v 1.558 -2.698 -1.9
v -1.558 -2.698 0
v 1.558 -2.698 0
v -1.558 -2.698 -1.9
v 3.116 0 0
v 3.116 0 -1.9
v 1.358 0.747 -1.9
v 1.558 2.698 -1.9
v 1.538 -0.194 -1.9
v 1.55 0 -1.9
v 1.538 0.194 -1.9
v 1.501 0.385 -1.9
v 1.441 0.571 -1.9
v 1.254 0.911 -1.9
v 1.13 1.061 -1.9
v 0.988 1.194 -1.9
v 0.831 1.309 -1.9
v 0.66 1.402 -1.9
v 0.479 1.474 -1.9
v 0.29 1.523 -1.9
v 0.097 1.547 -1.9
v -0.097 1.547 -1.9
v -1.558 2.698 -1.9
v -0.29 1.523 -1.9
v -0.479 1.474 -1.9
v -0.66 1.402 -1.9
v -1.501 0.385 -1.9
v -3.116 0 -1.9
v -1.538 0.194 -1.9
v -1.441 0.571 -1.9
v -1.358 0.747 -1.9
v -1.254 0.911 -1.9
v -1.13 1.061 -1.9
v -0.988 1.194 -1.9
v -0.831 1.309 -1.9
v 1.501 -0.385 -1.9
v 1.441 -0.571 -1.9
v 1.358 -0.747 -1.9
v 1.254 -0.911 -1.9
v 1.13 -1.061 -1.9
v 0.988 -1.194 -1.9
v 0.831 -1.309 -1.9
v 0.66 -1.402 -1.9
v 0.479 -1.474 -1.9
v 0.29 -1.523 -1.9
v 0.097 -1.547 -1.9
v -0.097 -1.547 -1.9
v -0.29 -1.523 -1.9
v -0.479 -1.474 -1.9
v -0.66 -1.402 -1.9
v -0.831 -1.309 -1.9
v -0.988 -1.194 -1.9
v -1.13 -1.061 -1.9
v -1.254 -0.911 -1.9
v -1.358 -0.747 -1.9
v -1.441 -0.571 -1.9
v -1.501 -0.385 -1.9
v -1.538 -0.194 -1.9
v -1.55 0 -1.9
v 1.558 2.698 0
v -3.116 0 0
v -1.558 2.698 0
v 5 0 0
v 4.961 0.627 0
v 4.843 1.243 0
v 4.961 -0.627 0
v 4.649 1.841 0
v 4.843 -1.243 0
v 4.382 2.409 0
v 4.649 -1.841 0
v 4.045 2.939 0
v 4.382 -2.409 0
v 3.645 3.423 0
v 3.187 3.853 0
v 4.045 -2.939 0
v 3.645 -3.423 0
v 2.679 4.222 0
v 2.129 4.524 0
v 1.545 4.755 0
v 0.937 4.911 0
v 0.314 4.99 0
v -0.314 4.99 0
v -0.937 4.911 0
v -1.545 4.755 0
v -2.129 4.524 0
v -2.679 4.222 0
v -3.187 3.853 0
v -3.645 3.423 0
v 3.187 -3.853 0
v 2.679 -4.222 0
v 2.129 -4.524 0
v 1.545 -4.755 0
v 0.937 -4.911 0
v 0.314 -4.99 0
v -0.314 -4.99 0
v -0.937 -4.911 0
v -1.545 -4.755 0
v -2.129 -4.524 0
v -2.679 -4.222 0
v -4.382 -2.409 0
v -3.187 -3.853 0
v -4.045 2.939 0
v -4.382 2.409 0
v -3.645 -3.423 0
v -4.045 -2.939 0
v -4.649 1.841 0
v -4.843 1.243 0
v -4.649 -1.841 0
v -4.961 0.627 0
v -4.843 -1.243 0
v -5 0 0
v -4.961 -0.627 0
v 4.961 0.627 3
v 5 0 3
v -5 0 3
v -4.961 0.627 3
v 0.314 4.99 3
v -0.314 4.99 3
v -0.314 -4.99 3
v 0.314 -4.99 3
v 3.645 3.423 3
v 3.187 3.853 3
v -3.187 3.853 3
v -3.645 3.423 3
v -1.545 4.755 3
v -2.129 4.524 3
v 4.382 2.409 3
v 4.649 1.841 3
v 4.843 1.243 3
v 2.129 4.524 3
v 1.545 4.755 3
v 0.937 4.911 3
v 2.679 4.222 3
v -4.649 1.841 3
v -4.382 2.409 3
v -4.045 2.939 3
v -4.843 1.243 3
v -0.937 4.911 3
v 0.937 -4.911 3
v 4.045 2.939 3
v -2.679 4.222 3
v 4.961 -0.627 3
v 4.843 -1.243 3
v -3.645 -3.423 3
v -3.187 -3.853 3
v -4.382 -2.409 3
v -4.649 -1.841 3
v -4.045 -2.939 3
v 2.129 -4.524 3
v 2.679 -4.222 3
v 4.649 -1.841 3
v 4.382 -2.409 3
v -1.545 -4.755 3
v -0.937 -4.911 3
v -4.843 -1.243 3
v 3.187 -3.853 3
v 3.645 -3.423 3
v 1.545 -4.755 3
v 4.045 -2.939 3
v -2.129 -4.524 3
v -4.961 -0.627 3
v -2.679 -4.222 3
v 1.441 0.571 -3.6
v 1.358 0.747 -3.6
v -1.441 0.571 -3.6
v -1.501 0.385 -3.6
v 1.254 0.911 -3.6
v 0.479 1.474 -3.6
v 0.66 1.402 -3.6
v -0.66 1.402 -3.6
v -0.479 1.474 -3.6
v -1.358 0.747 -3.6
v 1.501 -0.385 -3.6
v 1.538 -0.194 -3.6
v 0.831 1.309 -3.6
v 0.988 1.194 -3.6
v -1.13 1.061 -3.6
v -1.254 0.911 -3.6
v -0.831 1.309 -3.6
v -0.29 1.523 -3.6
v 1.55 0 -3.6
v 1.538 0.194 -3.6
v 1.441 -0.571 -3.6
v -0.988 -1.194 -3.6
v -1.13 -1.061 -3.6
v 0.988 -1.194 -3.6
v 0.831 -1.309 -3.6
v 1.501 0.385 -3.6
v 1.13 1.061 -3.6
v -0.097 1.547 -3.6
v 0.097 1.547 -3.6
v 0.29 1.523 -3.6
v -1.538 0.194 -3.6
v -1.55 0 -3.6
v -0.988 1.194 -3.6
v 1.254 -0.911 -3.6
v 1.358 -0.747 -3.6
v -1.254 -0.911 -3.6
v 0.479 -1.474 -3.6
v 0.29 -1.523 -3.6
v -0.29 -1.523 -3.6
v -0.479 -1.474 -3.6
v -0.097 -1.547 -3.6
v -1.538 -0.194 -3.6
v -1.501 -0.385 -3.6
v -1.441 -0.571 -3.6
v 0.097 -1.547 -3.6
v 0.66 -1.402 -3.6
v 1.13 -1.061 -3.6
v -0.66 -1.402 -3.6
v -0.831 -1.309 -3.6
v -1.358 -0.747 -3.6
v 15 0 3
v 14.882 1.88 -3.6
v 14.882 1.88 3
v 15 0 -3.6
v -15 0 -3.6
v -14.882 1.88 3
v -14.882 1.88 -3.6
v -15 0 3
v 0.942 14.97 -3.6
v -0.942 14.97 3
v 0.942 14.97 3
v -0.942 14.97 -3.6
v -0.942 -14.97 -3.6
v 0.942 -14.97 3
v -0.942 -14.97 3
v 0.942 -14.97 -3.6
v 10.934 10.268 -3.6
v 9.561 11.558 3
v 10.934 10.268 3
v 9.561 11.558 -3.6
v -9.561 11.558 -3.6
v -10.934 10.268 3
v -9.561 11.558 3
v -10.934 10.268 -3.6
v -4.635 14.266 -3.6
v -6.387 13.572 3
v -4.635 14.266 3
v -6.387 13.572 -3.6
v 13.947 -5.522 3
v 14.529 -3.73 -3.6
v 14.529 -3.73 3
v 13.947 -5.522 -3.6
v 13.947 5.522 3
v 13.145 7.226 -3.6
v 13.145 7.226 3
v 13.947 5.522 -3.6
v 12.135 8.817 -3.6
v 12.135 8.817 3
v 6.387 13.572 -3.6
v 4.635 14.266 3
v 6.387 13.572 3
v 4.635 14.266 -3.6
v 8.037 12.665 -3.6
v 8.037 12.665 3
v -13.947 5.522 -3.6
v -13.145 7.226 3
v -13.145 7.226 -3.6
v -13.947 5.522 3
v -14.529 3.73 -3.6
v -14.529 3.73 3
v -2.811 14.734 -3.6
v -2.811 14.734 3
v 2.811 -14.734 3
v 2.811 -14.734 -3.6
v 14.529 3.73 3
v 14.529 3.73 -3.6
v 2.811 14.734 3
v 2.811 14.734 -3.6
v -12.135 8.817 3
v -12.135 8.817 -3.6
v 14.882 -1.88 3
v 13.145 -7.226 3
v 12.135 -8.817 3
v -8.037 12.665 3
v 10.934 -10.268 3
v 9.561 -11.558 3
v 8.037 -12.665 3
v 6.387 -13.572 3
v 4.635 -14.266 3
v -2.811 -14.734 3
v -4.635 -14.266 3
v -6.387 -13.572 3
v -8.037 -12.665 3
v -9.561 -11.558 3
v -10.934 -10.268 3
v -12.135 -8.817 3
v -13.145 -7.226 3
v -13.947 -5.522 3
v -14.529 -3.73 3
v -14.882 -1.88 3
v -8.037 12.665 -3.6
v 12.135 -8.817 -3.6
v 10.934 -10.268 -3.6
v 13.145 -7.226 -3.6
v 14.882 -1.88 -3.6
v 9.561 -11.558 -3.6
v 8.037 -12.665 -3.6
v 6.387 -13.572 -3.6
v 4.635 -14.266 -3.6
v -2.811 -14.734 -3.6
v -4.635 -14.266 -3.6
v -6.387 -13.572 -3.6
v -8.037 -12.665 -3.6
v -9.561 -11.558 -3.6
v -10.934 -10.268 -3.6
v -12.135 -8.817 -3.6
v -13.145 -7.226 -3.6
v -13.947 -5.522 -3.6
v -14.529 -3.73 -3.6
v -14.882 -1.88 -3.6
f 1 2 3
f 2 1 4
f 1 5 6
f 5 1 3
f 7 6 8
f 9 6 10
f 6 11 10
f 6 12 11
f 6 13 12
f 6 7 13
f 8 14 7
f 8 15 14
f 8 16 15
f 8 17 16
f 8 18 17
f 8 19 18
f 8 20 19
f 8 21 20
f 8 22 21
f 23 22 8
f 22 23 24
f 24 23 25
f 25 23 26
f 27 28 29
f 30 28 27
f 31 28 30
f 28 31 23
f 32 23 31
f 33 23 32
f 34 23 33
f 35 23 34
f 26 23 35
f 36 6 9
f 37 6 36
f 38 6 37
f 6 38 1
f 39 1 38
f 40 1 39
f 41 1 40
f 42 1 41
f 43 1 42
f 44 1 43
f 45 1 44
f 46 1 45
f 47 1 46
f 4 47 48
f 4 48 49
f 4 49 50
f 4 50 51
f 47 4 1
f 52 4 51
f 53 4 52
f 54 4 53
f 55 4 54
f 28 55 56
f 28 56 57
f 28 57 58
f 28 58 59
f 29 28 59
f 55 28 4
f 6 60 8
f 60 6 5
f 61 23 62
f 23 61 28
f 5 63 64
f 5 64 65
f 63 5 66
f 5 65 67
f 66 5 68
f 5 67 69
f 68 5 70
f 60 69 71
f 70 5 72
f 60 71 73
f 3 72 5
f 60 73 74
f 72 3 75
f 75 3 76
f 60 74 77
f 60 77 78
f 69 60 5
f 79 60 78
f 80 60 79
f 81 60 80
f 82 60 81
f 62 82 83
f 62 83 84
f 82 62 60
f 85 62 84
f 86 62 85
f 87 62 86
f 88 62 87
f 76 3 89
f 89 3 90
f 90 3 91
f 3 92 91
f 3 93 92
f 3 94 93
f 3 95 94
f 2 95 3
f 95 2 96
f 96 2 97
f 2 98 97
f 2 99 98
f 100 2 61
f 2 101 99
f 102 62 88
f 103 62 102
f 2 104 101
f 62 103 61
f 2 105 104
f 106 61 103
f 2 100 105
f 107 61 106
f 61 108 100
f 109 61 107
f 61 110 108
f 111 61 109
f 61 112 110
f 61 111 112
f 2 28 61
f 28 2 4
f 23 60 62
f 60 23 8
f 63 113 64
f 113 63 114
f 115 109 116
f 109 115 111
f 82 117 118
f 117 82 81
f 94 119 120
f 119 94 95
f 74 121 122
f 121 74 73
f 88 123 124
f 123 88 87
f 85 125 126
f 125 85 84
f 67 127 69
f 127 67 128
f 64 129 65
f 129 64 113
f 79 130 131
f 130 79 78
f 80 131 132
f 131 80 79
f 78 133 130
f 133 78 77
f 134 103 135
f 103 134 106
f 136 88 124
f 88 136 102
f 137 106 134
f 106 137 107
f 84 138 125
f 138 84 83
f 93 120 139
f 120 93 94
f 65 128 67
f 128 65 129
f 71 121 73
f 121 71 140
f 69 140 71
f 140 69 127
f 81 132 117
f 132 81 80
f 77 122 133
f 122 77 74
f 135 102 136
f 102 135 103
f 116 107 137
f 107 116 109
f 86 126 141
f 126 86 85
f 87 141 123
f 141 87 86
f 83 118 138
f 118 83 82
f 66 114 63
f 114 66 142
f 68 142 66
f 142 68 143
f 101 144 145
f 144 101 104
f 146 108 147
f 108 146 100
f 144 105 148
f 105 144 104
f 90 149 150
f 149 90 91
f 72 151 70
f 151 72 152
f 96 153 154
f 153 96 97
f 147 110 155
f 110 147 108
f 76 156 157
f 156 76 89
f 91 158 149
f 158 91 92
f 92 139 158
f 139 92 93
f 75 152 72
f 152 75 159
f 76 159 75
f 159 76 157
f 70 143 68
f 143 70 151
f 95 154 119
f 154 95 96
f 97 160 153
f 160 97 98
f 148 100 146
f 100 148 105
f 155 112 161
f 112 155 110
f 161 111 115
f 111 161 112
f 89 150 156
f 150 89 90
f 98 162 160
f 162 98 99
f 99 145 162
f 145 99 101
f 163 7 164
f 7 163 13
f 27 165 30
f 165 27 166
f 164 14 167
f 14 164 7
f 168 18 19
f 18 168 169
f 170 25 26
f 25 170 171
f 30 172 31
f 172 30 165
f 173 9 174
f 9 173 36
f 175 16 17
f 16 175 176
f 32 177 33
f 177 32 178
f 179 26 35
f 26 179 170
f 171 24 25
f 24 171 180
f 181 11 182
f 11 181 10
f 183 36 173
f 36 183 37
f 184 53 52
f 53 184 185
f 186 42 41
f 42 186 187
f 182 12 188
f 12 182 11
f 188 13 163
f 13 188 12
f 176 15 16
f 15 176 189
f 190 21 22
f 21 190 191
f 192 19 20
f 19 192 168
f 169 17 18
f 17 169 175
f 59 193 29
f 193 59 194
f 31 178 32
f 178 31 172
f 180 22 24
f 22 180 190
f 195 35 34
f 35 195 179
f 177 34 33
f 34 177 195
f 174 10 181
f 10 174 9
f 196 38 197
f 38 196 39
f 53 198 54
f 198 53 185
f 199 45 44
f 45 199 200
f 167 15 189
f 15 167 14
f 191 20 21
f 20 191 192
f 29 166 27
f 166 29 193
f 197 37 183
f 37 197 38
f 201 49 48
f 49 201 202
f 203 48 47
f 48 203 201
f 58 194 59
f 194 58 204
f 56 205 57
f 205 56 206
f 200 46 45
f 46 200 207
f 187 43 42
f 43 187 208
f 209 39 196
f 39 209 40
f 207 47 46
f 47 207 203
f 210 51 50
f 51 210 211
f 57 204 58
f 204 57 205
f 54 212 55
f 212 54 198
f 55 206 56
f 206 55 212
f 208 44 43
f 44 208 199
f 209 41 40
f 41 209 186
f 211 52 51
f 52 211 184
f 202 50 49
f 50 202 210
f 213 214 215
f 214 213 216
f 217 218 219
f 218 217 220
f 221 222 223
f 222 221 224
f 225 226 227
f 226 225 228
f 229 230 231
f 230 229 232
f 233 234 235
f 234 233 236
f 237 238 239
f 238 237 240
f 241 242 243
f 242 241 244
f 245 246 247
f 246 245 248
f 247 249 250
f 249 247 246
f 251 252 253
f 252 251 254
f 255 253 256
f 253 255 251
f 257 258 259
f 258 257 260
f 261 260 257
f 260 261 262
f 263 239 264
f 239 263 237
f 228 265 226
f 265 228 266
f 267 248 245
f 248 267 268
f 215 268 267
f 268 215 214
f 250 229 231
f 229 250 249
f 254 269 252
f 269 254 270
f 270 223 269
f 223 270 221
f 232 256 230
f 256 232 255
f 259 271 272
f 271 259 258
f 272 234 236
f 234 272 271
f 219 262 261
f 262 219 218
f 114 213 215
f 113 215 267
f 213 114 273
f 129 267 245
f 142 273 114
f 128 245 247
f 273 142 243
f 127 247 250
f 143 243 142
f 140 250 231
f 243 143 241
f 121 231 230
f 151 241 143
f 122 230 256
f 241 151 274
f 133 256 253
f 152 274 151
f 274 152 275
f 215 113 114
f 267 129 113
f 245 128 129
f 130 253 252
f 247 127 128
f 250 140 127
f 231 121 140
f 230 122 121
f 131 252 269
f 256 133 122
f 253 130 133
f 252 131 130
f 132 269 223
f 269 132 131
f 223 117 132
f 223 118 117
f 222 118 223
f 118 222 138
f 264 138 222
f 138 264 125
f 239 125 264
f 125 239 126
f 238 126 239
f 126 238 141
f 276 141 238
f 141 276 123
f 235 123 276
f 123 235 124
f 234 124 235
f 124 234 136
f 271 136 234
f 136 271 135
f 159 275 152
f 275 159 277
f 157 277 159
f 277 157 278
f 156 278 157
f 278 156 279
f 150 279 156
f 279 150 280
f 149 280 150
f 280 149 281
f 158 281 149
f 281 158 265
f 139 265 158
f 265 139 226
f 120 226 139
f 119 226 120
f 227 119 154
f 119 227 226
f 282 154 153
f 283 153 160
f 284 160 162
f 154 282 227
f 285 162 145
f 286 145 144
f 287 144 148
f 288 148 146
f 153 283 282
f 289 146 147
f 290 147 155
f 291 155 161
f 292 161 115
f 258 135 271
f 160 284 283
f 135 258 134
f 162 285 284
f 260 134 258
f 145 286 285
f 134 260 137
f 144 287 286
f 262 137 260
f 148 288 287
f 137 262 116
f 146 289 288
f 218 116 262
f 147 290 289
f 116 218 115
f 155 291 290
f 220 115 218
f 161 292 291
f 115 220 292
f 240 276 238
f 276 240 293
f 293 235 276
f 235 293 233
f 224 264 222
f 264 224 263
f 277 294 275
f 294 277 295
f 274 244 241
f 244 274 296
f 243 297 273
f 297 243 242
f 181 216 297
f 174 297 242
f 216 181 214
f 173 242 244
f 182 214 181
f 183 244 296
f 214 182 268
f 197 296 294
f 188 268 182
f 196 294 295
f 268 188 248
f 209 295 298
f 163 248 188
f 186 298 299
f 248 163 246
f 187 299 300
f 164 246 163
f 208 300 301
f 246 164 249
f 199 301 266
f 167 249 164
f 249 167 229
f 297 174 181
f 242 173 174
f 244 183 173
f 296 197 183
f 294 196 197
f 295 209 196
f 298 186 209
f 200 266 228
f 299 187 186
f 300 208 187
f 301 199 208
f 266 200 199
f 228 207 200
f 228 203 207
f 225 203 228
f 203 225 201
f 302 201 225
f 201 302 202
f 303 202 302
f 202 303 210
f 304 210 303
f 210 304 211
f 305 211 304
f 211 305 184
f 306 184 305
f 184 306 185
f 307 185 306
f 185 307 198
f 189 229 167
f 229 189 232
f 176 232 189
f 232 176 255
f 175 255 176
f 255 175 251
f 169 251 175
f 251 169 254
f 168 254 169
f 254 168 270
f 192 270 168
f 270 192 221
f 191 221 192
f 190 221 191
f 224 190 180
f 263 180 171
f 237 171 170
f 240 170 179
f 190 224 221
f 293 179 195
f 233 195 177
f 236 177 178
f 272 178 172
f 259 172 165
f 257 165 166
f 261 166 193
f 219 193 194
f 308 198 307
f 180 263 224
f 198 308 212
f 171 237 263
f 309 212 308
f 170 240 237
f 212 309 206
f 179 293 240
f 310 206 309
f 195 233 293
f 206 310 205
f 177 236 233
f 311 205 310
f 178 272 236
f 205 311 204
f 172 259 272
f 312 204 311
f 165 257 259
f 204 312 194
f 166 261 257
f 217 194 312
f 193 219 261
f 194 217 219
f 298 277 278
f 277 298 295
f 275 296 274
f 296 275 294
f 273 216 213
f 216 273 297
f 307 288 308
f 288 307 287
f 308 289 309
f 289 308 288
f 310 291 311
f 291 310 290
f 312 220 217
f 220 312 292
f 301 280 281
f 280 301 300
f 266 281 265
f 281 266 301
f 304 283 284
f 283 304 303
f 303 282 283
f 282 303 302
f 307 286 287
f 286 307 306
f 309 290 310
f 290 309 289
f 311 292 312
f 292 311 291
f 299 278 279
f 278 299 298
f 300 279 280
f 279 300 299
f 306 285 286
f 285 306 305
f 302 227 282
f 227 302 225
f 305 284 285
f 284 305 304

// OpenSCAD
$fn = 50;


difference() {
	union() {
		translate(v = [0, 0, -3.6000000000]) {
			cylinder(h = 6.6000000000, r = 15.0000000000);
		}
	}
	union() {
		translate(v = [0, 0, 0]) {
			rotate(a = [0, 0, 0]) {
				difference() {
					union() {
						translate(v = [0, 0, -1.9000000000]) {
							linear_extrude(height = 1.9000000000) {
								polygon(points = [[3.1158000000, 0.0000000000], [1.5579000000, 2.6983619531], [-1.5579000000, 2.6983619531], [-3.1158000000, 0.0000000000], [-1.5579000000, -2.6983619531], [1.5579000000, -2.6983619531]]);
							}
						}
					}
					union();
				}
			}
		}
		#cylinder(h = 3, r = 5.0000000000);
		#translate(v = [0, 0, -100.0000000000]) {
			cylinder(h = 200, r = 1.5500000000);
		}
	}
}
